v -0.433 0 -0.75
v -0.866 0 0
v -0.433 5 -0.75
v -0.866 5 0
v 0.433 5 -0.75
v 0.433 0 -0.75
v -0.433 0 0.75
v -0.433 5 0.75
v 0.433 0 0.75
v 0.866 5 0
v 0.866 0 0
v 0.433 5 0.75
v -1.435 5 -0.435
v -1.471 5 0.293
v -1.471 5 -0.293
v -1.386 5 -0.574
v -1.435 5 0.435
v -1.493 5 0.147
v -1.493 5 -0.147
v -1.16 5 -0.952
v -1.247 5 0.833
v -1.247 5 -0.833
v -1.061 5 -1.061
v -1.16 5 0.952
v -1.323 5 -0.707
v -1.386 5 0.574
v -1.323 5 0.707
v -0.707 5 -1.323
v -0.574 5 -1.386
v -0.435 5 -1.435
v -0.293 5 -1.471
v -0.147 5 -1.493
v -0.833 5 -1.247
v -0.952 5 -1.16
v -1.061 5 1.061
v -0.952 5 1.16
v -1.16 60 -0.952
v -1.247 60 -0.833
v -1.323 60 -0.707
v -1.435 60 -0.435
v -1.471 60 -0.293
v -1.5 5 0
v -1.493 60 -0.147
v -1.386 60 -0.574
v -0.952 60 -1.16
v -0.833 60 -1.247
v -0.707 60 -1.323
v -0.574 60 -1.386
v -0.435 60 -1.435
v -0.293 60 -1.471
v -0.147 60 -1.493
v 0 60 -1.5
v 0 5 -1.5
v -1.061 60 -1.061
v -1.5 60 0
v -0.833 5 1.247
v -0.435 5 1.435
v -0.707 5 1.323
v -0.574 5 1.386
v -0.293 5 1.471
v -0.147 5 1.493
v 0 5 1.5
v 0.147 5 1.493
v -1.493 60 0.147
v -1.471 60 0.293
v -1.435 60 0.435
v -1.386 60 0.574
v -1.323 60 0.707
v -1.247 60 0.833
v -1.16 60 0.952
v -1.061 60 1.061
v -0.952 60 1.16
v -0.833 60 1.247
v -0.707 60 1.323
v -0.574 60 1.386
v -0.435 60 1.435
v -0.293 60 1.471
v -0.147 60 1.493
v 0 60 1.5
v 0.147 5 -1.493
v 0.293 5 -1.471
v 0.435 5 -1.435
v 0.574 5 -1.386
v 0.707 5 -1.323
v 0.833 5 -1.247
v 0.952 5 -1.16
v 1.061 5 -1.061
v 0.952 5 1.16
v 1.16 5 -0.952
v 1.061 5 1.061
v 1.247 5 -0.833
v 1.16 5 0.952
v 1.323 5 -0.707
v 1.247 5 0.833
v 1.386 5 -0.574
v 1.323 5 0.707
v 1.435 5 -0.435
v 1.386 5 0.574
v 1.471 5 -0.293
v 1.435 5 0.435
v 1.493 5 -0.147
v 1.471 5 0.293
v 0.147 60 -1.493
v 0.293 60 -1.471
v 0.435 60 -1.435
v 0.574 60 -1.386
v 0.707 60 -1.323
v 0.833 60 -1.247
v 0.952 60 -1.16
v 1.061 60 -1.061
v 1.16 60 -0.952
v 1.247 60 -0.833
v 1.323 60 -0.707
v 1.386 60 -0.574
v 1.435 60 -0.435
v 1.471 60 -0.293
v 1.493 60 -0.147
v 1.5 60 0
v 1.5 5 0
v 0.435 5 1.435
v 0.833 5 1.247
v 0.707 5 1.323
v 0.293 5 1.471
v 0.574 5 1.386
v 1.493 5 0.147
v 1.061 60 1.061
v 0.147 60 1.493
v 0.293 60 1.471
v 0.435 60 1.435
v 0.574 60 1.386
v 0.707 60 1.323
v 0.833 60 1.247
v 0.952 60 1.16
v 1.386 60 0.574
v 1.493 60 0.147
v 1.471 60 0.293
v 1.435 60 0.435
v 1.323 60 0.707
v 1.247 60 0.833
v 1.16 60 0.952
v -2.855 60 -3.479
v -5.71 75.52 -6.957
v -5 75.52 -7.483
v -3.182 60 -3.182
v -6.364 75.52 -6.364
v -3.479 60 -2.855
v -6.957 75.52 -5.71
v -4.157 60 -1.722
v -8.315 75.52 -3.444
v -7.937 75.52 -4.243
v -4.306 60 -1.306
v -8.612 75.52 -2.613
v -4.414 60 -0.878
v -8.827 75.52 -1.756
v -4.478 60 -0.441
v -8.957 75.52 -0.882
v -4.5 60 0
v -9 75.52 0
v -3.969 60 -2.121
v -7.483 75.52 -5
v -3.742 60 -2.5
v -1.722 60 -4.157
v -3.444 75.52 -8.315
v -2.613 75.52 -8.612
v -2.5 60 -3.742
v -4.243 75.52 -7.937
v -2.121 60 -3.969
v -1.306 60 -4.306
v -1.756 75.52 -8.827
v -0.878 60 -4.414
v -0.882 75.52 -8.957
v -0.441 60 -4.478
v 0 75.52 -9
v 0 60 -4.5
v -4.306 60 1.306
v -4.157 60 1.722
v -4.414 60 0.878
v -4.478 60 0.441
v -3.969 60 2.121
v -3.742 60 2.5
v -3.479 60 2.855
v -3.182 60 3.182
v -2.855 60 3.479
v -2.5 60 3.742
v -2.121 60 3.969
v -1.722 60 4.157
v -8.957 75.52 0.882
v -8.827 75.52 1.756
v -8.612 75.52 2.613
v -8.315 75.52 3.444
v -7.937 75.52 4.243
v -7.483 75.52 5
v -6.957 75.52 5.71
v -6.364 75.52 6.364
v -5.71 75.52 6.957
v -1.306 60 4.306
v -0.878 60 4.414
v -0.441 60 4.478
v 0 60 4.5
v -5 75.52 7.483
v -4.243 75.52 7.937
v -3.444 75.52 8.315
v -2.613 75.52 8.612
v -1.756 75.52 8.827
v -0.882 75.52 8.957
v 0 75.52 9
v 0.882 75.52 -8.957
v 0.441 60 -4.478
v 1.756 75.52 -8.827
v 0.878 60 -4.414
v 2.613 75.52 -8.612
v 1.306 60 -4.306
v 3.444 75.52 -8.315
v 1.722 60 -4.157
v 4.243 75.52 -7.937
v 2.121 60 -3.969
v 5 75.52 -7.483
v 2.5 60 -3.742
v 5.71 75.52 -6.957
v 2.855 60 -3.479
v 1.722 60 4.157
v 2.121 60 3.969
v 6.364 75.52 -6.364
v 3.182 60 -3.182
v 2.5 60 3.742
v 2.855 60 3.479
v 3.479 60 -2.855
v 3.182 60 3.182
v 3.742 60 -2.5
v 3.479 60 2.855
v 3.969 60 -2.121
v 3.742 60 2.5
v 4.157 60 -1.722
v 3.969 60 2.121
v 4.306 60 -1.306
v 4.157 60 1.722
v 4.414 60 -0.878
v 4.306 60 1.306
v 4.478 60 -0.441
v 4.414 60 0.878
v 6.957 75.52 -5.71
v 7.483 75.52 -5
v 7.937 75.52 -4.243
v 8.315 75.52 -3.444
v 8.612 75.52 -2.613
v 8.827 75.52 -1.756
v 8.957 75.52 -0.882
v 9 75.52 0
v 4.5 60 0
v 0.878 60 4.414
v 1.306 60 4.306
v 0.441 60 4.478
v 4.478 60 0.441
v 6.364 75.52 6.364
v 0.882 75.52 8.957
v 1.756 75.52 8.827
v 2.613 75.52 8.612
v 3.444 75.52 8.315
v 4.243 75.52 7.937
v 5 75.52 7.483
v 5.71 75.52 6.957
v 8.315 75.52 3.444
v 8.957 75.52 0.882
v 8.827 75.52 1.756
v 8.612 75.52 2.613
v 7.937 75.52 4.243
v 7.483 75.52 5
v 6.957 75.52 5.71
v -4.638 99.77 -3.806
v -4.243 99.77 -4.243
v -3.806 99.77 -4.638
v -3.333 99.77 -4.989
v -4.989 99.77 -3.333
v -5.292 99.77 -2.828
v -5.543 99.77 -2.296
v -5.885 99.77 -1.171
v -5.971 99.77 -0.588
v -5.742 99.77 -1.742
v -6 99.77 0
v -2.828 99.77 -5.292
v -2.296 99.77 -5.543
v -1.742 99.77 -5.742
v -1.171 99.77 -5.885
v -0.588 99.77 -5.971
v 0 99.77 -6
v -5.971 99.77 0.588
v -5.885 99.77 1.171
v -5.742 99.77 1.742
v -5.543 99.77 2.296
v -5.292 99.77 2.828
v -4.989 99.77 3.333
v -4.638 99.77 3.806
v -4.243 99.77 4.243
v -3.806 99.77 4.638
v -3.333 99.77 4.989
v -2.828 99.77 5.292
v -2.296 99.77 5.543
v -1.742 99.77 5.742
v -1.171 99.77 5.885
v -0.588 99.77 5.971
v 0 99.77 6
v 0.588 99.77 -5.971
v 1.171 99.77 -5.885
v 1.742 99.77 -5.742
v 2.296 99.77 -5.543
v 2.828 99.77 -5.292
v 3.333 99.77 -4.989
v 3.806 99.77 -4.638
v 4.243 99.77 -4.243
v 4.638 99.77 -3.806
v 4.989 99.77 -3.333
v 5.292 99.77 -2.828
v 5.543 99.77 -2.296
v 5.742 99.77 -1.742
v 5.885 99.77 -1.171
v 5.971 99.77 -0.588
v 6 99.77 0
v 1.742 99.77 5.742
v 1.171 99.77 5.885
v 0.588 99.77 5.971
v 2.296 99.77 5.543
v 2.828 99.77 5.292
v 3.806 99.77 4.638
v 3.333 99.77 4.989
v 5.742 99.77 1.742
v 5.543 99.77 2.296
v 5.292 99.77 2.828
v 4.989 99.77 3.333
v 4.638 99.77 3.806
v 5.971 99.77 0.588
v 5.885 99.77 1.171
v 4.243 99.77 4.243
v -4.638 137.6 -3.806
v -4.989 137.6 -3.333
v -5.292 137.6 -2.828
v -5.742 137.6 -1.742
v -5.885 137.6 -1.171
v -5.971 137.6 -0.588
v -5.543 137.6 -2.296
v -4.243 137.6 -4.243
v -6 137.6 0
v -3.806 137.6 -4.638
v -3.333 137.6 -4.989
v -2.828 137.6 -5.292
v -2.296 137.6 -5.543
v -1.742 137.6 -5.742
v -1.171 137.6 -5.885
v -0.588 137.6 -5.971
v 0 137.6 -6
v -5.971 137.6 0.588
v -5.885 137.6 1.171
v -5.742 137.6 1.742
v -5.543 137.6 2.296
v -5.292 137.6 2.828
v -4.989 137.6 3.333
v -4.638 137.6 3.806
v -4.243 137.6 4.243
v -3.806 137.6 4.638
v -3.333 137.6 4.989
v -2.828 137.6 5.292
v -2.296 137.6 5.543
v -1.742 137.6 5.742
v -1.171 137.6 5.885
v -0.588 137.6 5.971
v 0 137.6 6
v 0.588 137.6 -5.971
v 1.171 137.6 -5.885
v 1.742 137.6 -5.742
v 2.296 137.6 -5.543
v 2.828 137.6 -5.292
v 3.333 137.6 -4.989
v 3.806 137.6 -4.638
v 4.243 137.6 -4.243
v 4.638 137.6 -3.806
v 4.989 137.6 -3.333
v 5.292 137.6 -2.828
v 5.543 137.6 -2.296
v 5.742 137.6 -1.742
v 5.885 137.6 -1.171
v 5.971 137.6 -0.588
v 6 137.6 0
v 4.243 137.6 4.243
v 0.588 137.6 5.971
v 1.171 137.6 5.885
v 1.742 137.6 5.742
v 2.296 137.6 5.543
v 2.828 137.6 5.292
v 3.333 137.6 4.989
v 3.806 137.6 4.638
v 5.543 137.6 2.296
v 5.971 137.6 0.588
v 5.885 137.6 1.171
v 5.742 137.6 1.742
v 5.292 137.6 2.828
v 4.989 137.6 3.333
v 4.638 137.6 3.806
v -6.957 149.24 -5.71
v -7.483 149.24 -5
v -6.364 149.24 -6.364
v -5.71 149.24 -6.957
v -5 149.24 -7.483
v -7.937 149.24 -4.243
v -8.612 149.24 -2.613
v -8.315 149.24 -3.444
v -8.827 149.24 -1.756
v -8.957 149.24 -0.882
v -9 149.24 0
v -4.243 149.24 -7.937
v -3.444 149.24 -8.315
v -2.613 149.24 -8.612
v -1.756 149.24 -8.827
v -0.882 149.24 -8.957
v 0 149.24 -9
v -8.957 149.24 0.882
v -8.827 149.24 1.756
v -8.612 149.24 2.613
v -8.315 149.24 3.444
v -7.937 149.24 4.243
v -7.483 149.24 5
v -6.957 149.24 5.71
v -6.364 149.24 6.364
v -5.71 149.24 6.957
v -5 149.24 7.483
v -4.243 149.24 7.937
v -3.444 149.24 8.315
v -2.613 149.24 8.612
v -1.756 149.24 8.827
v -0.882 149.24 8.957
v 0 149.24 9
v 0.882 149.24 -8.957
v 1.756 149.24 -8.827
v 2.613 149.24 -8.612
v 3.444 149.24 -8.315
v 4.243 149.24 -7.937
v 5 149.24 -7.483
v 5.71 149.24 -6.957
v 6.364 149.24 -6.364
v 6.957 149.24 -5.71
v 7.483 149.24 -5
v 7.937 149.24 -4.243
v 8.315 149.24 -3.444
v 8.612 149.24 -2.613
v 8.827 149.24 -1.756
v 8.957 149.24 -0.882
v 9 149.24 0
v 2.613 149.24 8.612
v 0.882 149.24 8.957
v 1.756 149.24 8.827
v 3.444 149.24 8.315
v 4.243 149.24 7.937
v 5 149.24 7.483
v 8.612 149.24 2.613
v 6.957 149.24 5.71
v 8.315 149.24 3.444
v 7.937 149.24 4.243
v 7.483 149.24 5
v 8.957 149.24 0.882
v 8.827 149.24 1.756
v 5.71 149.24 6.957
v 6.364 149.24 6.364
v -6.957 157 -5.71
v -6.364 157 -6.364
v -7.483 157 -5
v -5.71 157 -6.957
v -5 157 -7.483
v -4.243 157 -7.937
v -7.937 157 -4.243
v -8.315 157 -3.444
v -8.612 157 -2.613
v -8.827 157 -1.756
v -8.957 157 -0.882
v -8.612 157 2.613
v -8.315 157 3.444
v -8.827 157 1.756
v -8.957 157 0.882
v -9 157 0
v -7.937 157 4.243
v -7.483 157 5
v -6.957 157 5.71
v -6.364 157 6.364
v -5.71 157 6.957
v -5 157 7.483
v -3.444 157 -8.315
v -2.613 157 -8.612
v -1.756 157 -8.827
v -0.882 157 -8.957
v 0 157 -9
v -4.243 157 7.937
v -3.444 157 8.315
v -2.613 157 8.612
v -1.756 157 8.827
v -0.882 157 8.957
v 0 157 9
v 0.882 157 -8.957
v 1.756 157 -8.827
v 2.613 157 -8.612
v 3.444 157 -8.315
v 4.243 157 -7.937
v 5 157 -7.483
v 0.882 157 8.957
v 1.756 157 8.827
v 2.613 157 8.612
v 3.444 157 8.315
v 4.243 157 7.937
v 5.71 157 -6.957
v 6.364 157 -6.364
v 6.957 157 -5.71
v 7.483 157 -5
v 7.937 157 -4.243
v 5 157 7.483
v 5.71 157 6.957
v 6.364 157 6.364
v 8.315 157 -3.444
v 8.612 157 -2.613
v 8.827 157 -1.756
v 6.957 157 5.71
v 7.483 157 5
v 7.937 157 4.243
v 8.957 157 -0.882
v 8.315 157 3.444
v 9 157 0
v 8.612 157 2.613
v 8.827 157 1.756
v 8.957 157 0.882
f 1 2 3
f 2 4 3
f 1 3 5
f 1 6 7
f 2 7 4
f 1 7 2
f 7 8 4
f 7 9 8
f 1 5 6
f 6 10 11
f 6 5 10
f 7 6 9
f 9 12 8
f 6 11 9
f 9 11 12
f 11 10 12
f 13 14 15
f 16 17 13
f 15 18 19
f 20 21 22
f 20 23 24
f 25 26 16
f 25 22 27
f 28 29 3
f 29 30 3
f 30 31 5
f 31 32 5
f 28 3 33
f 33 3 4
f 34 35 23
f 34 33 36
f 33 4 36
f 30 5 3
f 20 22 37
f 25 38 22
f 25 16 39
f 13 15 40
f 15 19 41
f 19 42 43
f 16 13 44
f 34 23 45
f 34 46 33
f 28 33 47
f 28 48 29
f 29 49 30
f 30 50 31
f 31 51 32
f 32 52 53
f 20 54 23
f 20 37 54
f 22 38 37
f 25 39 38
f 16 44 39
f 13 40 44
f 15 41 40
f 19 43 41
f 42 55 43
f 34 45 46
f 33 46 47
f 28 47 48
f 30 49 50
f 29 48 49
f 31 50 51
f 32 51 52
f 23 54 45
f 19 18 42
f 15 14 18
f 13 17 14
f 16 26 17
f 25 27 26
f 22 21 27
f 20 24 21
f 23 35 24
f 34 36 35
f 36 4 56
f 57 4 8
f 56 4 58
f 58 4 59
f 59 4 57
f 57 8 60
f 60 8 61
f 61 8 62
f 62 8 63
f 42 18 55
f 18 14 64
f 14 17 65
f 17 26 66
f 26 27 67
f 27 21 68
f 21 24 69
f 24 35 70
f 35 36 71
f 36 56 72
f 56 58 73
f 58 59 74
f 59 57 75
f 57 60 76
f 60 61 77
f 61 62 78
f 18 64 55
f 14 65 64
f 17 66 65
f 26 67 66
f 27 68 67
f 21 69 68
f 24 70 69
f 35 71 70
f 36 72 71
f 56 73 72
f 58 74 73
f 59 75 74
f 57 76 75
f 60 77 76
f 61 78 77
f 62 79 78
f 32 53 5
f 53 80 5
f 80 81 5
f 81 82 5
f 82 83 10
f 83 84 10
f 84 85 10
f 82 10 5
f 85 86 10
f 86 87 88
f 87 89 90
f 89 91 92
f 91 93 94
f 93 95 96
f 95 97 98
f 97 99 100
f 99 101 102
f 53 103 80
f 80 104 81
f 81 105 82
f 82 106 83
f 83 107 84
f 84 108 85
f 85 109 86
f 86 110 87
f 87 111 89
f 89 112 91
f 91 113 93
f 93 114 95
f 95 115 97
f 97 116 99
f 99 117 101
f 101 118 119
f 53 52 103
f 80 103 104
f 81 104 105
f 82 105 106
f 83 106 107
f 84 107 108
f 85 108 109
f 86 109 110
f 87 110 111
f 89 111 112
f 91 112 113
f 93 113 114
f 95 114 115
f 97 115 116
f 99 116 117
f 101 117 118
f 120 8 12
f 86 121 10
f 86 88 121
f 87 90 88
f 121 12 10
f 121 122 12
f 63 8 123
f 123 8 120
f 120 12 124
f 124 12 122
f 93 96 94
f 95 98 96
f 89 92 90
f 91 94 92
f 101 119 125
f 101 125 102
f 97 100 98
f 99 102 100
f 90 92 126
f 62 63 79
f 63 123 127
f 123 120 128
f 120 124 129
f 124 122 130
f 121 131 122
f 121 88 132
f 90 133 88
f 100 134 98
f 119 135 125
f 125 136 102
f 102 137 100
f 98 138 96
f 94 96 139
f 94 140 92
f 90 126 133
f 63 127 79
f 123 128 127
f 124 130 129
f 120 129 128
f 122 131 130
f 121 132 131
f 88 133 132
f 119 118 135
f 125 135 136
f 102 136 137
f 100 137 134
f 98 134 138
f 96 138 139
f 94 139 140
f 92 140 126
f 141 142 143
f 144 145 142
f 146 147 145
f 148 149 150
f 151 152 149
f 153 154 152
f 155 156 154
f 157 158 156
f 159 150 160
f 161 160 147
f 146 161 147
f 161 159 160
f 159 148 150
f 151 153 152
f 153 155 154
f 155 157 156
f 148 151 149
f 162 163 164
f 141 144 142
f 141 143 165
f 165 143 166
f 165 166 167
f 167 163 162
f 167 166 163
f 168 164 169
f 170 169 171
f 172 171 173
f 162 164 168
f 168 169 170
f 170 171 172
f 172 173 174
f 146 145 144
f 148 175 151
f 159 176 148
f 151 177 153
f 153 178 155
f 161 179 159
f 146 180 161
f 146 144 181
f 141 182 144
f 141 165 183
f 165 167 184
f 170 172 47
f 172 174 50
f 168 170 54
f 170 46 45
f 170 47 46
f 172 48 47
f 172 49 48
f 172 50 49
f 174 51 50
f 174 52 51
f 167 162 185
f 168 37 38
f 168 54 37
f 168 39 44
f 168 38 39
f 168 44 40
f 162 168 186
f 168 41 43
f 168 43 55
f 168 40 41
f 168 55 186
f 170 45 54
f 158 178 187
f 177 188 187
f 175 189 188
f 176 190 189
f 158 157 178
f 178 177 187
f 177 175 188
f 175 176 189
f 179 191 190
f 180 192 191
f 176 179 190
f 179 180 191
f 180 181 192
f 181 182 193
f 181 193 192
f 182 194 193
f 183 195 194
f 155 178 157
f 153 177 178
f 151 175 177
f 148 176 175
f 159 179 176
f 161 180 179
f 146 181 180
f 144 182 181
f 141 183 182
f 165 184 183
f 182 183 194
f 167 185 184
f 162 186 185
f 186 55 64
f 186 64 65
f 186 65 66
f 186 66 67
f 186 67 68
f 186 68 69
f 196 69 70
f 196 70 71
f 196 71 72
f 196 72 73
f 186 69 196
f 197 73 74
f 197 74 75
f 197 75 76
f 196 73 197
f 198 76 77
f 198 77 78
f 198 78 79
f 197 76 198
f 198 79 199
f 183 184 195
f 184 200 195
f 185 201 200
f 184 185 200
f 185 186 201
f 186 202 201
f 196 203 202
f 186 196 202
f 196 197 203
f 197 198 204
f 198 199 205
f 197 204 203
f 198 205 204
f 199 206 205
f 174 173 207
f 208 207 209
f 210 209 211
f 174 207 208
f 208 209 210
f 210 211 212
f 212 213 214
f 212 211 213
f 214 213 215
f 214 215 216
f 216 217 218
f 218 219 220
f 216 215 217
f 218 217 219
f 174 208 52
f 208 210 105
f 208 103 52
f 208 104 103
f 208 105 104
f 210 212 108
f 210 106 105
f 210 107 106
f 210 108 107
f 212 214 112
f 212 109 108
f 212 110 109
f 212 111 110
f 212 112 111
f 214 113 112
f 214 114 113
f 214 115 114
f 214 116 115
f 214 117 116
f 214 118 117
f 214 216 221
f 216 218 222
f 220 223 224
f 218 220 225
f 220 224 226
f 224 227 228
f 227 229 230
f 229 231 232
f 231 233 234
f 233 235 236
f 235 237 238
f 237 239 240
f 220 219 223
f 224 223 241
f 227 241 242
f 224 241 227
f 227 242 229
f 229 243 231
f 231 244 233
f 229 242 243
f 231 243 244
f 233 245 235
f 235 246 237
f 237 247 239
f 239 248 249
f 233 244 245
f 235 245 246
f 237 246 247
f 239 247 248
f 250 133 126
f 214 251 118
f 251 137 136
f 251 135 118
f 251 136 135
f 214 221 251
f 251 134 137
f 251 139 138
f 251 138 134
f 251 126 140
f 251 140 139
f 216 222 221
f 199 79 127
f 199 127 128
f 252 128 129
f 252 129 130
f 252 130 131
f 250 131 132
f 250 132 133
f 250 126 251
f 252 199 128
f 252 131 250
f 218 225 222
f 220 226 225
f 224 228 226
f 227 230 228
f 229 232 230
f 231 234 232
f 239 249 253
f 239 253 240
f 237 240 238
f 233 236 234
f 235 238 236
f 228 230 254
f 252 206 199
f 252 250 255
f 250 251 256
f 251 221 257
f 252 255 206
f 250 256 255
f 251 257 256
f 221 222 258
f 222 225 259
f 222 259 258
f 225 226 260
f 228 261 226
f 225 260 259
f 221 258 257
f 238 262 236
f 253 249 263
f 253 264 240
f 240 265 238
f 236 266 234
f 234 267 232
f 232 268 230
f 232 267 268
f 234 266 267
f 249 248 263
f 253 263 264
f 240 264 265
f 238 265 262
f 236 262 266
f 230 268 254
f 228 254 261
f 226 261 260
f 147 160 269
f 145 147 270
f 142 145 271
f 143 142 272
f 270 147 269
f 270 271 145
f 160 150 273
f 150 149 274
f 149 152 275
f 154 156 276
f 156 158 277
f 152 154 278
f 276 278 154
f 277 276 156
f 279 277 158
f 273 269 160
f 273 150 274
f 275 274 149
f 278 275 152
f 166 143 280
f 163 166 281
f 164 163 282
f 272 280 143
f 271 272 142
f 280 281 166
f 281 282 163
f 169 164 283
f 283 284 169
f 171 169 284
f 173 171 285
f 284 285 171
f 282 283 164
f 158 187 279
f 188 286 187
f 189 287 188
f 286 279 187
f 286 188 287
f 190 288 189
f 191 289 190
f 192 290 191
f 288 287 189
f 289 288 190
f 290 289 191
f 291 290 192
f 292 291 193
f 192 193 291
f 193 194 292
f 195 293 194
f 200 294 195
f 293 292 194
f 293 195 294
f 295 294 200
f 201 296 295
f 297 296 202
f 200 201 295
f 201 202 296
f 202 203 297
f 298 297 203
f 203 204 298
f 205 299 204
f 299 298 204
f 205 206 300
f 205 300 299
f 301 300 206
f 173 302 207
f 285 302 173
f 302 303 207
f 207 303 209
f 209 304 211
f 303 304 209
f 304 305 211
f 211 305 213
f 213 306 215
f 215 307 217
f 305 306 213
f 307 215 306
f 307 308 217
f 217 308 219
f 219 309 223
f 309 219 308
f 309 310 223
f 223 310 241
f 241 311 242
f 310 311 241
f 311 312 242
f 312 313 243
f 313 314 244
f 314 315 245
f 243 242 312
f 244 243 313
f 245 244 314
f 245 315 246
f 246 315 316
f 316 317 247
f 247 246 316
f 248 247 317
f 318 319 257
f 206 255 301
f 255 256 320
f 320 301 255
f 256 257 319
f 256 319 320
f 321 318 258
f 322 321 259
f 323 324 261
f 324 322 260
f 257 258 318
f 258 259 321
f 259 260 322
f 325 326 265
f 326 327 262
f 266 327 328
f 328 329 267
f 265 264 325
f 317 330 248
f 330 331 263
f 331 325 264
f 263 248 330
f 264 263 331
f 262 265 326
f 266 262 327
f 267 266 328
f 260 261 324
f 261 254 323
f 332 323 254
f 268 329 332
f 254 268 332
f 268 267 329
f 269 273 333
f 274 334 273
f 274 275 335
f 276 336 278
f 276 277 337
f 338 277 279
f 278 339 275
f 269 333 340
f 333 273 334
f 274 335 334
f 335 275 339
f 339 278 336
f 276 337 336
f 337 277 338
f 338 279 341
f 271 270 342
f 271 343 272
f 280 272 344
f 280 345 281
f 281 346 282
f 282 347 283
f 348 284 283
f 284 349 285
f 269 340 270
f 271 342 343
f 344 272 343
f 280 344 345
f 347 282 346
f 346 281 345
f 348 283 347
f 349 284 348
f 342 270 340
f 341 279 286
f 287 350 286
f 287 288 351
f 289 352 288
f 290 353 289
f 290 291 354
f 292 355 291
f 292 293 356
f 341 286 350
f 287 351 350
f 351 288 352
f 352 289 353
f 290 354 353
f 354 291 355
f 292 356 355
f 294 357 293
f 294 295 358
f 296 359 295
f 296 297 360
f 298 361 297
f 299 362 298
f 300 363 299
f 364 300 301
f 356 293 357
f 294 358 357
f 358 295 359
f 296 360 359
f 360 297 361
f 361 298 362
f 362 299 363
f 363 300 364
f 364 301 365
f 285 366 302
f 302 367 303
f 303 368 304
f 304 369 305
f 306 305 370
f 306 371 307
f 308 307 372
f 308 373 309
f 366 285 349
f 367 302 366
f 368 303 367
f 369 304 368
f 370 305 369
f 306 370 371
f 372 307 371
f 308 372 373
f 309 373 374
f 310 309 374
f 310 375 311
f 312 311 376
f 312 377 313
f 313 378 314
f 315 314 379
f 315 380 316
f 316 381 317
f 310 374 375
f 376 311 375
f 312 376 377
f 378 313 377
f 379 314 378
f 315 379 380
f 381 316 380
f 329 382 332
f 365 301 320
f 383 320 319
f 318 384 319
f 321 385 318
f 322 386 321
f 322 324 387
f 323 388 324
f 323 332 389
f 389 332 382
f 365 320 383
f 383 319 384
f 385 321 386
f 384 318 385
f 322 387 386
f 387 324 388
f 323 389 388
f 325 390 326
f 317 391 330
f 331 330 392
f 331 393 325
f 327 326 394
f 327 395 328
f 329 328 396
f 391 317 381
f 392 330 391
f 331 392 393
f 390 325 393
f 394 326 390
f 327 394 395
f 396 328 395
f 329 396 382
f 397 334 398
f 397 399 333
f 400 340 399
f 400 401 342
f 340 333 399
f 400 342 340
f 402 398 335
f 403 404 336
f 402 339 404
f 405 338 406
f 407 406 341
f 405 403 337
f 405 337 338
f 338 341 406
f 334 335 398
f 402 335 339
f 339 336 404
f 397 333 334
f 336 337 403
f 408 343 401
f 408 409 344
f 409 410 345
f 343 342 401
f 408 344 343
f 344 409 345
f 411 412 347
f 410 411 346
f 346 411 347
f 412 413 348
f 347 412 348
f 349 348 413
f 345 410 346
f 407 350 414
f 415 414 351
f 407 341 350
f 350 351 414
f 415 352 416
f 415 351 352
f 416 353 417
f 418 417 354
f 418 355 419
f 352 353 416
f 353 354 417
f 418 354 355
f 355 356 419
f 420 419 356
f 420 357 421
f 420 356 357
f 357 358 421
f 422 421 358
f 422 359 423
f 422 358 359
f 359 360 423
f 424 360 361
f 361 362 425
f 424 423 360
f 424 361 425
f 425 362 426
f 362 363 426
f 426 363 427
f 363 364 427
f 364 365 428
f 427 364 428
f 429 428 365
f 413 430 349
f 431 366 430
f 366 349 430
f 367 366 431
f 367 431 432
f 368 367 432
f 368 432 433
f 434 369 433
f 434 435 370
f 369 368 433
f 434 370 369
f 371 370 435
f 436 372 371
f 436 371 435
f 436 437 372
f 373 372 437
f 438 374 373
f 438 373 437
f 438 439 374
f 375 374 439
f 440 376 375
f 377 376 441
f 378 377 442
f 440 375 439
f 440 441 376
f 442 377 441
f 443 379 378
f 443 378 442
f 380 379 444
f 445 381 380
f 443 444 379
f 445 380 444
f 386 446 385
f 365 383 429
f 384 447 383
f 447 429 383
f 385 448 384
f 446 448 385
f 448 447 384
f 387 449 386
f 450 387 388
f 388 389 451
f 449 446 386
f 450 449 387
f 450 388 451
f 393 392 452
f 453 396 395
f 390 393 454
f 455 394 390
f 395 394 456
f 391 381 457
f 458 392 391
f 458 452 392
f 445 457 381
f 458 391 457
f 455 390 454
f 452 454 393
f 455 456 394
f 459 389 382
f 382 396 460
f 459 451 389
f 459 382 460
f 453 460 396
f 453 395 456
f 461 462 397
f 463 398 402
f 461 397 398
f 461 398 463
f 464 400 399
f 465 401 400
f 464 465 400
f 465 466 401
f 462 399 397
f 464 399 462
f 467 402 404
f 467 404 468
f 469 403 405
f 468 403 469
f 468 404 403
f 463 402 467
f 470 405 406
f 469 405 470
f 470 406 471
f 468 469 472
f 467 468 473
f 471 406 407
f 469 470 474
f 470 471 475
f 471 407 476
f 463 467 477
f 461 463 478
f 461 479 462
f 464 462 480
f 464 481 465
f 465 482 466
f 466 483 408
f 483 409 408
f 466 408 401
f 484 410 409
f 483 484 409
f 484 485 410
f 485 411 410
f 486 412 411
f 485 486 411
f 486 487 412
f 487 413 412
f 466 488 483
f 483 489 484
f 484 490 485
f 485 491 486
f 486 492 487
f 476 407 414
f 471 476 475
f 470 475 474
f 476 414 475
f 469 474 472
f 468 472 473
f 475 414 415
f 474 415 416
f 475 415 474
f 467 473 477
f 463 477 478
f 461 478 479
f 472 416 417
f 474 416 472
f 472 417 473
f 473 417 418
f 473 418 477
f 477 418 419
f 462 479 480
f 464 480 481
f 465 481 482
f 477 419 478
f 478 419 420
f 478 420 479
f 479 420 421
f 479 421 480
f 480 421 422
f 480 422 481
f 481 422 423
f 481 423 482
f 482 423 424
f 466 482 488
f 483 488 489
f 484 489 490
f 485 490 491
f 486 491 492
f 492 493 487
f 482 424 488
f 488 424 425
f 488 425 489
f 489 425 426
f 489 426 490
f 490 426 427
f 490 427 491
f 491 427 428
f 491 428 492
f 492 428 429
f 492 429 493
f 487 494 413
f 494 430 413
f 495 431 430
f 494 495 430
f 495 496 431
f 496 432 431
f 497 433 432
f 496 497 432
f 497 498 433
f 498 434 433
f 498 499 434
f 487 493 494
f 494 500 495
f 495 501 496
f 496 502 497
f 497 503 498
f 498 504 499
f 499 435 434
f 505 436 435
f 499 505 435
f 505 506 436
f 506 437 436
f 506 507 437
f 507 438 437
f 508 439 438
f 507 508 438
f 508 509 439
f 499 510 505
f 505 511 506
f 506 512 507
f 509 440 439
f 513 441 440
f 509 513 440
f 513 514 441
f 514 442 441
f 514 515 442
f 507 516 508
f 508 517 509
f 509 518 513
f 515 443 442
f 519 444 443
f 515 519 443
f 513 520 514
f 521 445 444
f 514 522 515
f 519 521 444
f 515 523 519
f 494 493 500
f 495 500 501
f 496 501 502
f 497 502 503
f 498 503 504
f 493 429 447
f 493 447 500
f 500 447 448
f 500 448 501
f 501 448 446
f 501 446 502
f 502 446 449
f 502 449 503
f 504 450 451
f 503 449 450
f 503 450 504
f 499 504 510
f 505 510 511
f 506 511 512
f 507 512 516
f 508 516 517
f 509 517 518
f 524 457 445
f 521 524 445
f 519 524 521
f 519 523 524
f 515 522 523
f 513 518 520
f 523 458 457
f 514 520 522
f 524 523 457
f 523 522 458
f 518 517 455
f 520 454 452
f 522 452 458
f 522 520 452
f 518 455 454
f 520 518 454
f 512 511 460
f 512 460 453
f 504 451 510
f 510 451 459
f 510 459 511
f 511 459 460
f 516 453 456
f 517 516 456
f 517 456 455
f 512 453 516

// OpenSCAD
// Wera 2054 Micro hex screwdriver, 1.5 × 60 mm
// Wera specifies the shaft diameter, shaft length and handle length. The archived OOMP record supplies the 18 mm handle envelope. Grip taper, cap and tip transition are illustrative.
// Units: mm
$fn = 64;
union() {
    translate([0, 0, 0]) rotate([-90, 0, 0])
        cylinder(h=5, r1=0.8660254037844387, r2=0.8660254037844387, $fn=6);
    translate([0, 5, 0]) rotate([-90, 0, 0])
        cylinder(h=55, r1=1.5, r2=1.5, $fn=64);
    translate([0, 60, 0]) rotate([-90, 0, 0])
        cylinder(h=15.52, r1=4.5, r2=9.0, $fn=64);
    translate([0, 75.52, 0]) rotate([-90, 0, 0])
        cylinder(h=24.25, r1=9.0, r2=6.0, $fn=64);
    translate([0, 99.77, 0]) rotate([-90, 0, 0])
        cylinder(h=37.83, r1=6.0, r2=6.0, $fn=64);
    translate([0, 137.6, 0]) rotate([-90, 0, 0])
        cylinder(h=11.639999999999999, r1=6.0, r2=9.0, $fn=64);
    translate([0, 149.23999999999998, 0]) rotate([-90, 0, 0])
        cylinder(h=7.76, r1=9.0, r2=9.0, $fn=64);
}
